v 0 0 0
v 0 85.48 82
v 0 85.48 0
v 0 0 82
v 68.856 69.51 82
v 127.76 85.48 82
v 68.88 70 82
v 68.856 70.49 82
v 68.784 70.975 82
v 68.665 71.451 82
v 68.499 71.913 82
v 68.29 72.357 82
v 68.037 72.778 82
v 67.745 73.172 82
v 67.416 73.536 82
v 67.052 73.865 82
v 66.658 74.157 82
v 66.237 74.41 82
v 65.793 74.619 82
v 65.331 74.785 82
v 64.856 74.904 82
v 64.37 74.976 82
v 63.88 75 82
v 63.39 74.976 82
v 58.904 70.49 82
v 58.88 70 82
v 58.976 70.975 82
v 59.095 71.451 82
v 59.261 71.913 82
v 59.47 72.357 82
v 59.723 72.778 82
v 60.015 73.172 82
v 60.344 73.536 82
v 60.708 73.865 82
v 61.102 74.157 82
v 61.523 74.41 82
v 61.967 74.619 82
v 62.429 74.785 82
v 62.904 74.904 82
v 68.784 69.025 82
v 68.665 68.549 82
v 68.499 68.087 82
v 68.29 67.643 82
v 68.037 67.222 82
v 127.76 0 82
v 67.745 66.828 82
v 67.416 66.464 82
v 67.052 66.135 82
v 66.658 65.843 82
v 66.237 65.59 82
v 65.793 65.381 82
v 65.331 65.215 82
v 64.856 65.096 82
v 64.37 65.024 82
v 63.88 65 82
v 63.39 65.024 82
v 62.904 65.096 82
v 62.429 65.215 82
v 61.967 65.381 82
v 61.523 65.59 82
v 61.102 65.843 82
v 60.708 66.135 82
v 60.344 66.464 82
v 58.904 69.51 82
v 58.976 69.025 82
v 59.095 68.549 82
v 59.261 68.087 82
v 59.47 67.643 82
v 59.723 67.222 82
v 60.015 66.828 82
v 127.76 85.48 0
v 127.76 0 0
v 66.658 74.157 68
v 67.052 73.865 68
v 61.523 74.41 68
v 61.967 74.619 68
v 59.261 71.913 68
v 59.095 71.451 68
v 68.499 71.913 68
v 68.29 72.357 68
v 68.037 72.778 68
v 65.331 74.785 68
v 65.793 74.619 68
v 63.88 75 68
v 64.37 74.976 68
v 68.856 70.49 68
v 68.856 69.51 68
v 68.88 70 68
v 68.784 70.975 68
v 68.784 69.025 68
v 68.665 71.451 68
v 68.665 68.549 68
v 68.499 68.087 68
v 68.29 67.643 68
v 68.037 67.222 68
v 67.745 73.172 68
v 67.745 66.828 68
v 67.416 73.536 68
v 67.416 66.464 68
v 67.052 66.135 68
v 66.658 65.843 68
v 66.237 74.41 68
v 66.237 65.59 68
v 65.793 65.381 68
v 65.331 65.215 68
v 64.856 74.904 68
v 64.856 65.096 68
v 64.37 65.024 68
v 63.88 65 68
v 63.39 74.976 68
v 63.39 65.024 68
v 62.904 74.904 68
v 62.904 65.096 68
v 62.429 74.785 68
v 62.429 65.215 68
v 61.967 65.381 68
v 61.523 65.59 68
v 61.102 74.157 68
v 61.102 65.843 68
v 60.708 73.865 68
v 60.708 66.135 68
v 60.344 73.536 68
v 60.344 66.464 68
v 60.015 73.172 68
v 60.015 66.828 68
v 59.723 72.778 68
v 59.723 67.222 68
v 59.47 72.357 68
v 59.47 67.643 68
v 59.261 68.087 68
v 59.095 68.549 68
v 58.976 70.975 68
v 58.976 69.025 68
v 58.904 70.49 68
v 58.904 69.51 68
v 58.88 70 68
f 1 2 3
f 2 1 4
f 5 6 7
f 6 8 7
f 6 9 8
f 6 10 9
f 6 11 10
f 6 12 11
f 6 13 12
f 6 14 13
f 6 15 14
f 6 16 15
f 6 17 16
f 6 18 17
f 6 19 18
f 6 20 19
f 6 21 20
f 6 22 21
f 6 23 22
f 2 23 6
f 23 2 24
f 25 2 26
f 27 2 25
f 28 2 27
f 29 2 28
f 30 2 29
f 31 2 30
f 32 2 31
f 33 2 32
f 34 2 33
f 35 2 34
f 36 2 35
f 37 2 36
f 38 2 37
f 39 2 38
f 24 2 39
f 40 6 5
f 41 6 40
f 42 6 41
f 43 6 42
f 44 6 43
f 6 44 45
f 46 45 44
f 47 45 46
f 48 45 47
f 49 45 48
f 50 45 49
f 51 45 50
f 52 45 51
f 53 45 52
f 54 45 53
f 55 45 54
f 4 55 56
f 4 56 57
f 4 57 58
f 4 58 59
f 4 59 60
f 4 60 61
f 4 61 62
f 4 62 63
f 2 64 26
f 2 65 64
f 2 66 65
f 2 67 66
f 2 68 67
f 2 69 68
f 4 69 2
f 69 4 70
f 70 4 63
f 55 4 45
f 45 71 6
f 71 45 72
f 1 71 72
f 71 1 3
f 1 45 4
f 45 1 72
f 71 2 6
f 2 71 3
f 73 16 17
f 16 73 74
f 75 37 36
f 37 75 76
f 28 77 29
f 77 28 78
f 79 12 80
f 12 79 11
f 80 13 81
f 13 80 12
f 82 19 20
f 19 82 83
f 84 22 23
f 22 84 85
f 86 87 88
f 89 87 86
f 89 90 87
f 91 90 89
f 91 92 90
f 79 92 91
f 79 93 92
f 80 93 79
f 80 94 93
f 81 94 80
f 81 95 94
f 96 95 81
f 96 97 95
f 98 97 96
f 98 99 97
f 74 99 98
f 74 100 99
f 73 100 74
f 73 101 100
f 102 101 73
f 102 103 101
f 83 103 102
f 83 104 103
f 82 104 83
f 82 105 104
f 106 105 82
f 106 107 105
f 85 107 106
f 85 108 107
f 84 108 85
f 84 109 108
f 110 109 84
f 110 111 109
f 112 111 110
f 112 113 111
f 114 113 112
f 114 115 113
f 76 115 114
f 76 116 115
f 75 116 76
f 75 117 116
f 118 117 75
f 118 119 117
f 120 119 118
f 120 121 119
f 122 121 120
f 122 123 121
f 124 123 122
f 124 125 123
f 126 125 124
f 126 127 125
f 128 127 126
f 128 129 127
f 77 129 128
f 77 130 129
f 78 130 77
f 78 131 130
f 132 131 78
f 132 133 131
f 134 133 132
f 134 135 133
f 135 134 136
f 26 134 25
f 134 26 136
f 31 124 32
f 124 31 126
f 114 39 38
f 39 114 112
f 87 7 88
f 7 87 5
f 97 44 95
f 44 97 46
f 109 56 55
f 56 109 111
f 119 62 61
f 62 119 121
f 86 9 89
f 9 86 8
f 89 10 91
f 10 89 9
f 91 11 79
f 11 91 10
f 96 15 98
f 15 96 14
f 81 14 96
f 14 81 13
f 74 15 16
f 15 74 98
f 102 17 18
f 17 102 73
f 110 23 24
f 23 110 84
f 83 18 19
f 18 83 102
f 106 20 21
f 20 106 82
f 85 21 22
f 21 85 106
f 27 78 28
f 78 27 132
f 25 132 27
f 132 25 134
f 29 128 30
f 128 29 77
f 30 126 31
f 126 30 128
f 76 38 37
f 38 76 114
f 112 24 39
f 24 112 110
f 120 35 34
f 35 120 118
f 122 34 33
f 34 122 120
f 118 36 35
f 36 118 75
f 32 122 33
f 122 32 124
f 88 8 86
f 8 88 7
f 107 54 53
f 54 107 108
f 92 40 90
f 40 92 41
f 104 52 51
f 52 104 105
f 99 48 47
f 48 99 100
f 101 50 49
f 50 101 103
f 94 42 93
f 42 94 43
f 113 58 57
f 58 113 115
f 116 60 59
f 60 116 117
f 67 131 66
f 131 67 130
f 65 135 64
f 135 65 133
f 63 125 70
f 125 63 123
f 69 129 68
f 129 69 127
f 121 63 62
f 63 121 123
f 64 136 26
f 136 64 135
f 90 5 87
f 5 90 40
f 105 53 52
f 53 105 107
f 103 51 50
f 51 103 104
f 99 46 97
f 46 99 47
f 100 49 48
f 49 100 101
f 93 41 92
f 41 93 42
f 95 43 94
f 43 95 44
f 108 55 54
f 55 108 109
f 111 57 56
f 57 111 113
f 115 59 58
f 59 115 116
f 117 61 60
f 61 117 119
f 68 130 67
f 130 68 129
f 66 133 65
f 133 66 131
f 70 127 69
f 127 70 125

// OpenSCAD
// afl_catch_assembly
// loadName: 20ccscintillation_screwdown_vialplate
// Auto-generated by labware_to_stl.py from Opentrons V2 labware definition

$fn = 64;

difference() {
    // ── Labware body ──────────────────────────────────────────────
    cube([127.7600, 85.4800, 82.0000]);

    // ── Well cutouts ──────────────────────────────────────────────
    // Well A1
    translate([63.8800, 70.0000, 68.0000])
        cylinder(h=16.0000, r=5.0000, $fn=$fn);
}
